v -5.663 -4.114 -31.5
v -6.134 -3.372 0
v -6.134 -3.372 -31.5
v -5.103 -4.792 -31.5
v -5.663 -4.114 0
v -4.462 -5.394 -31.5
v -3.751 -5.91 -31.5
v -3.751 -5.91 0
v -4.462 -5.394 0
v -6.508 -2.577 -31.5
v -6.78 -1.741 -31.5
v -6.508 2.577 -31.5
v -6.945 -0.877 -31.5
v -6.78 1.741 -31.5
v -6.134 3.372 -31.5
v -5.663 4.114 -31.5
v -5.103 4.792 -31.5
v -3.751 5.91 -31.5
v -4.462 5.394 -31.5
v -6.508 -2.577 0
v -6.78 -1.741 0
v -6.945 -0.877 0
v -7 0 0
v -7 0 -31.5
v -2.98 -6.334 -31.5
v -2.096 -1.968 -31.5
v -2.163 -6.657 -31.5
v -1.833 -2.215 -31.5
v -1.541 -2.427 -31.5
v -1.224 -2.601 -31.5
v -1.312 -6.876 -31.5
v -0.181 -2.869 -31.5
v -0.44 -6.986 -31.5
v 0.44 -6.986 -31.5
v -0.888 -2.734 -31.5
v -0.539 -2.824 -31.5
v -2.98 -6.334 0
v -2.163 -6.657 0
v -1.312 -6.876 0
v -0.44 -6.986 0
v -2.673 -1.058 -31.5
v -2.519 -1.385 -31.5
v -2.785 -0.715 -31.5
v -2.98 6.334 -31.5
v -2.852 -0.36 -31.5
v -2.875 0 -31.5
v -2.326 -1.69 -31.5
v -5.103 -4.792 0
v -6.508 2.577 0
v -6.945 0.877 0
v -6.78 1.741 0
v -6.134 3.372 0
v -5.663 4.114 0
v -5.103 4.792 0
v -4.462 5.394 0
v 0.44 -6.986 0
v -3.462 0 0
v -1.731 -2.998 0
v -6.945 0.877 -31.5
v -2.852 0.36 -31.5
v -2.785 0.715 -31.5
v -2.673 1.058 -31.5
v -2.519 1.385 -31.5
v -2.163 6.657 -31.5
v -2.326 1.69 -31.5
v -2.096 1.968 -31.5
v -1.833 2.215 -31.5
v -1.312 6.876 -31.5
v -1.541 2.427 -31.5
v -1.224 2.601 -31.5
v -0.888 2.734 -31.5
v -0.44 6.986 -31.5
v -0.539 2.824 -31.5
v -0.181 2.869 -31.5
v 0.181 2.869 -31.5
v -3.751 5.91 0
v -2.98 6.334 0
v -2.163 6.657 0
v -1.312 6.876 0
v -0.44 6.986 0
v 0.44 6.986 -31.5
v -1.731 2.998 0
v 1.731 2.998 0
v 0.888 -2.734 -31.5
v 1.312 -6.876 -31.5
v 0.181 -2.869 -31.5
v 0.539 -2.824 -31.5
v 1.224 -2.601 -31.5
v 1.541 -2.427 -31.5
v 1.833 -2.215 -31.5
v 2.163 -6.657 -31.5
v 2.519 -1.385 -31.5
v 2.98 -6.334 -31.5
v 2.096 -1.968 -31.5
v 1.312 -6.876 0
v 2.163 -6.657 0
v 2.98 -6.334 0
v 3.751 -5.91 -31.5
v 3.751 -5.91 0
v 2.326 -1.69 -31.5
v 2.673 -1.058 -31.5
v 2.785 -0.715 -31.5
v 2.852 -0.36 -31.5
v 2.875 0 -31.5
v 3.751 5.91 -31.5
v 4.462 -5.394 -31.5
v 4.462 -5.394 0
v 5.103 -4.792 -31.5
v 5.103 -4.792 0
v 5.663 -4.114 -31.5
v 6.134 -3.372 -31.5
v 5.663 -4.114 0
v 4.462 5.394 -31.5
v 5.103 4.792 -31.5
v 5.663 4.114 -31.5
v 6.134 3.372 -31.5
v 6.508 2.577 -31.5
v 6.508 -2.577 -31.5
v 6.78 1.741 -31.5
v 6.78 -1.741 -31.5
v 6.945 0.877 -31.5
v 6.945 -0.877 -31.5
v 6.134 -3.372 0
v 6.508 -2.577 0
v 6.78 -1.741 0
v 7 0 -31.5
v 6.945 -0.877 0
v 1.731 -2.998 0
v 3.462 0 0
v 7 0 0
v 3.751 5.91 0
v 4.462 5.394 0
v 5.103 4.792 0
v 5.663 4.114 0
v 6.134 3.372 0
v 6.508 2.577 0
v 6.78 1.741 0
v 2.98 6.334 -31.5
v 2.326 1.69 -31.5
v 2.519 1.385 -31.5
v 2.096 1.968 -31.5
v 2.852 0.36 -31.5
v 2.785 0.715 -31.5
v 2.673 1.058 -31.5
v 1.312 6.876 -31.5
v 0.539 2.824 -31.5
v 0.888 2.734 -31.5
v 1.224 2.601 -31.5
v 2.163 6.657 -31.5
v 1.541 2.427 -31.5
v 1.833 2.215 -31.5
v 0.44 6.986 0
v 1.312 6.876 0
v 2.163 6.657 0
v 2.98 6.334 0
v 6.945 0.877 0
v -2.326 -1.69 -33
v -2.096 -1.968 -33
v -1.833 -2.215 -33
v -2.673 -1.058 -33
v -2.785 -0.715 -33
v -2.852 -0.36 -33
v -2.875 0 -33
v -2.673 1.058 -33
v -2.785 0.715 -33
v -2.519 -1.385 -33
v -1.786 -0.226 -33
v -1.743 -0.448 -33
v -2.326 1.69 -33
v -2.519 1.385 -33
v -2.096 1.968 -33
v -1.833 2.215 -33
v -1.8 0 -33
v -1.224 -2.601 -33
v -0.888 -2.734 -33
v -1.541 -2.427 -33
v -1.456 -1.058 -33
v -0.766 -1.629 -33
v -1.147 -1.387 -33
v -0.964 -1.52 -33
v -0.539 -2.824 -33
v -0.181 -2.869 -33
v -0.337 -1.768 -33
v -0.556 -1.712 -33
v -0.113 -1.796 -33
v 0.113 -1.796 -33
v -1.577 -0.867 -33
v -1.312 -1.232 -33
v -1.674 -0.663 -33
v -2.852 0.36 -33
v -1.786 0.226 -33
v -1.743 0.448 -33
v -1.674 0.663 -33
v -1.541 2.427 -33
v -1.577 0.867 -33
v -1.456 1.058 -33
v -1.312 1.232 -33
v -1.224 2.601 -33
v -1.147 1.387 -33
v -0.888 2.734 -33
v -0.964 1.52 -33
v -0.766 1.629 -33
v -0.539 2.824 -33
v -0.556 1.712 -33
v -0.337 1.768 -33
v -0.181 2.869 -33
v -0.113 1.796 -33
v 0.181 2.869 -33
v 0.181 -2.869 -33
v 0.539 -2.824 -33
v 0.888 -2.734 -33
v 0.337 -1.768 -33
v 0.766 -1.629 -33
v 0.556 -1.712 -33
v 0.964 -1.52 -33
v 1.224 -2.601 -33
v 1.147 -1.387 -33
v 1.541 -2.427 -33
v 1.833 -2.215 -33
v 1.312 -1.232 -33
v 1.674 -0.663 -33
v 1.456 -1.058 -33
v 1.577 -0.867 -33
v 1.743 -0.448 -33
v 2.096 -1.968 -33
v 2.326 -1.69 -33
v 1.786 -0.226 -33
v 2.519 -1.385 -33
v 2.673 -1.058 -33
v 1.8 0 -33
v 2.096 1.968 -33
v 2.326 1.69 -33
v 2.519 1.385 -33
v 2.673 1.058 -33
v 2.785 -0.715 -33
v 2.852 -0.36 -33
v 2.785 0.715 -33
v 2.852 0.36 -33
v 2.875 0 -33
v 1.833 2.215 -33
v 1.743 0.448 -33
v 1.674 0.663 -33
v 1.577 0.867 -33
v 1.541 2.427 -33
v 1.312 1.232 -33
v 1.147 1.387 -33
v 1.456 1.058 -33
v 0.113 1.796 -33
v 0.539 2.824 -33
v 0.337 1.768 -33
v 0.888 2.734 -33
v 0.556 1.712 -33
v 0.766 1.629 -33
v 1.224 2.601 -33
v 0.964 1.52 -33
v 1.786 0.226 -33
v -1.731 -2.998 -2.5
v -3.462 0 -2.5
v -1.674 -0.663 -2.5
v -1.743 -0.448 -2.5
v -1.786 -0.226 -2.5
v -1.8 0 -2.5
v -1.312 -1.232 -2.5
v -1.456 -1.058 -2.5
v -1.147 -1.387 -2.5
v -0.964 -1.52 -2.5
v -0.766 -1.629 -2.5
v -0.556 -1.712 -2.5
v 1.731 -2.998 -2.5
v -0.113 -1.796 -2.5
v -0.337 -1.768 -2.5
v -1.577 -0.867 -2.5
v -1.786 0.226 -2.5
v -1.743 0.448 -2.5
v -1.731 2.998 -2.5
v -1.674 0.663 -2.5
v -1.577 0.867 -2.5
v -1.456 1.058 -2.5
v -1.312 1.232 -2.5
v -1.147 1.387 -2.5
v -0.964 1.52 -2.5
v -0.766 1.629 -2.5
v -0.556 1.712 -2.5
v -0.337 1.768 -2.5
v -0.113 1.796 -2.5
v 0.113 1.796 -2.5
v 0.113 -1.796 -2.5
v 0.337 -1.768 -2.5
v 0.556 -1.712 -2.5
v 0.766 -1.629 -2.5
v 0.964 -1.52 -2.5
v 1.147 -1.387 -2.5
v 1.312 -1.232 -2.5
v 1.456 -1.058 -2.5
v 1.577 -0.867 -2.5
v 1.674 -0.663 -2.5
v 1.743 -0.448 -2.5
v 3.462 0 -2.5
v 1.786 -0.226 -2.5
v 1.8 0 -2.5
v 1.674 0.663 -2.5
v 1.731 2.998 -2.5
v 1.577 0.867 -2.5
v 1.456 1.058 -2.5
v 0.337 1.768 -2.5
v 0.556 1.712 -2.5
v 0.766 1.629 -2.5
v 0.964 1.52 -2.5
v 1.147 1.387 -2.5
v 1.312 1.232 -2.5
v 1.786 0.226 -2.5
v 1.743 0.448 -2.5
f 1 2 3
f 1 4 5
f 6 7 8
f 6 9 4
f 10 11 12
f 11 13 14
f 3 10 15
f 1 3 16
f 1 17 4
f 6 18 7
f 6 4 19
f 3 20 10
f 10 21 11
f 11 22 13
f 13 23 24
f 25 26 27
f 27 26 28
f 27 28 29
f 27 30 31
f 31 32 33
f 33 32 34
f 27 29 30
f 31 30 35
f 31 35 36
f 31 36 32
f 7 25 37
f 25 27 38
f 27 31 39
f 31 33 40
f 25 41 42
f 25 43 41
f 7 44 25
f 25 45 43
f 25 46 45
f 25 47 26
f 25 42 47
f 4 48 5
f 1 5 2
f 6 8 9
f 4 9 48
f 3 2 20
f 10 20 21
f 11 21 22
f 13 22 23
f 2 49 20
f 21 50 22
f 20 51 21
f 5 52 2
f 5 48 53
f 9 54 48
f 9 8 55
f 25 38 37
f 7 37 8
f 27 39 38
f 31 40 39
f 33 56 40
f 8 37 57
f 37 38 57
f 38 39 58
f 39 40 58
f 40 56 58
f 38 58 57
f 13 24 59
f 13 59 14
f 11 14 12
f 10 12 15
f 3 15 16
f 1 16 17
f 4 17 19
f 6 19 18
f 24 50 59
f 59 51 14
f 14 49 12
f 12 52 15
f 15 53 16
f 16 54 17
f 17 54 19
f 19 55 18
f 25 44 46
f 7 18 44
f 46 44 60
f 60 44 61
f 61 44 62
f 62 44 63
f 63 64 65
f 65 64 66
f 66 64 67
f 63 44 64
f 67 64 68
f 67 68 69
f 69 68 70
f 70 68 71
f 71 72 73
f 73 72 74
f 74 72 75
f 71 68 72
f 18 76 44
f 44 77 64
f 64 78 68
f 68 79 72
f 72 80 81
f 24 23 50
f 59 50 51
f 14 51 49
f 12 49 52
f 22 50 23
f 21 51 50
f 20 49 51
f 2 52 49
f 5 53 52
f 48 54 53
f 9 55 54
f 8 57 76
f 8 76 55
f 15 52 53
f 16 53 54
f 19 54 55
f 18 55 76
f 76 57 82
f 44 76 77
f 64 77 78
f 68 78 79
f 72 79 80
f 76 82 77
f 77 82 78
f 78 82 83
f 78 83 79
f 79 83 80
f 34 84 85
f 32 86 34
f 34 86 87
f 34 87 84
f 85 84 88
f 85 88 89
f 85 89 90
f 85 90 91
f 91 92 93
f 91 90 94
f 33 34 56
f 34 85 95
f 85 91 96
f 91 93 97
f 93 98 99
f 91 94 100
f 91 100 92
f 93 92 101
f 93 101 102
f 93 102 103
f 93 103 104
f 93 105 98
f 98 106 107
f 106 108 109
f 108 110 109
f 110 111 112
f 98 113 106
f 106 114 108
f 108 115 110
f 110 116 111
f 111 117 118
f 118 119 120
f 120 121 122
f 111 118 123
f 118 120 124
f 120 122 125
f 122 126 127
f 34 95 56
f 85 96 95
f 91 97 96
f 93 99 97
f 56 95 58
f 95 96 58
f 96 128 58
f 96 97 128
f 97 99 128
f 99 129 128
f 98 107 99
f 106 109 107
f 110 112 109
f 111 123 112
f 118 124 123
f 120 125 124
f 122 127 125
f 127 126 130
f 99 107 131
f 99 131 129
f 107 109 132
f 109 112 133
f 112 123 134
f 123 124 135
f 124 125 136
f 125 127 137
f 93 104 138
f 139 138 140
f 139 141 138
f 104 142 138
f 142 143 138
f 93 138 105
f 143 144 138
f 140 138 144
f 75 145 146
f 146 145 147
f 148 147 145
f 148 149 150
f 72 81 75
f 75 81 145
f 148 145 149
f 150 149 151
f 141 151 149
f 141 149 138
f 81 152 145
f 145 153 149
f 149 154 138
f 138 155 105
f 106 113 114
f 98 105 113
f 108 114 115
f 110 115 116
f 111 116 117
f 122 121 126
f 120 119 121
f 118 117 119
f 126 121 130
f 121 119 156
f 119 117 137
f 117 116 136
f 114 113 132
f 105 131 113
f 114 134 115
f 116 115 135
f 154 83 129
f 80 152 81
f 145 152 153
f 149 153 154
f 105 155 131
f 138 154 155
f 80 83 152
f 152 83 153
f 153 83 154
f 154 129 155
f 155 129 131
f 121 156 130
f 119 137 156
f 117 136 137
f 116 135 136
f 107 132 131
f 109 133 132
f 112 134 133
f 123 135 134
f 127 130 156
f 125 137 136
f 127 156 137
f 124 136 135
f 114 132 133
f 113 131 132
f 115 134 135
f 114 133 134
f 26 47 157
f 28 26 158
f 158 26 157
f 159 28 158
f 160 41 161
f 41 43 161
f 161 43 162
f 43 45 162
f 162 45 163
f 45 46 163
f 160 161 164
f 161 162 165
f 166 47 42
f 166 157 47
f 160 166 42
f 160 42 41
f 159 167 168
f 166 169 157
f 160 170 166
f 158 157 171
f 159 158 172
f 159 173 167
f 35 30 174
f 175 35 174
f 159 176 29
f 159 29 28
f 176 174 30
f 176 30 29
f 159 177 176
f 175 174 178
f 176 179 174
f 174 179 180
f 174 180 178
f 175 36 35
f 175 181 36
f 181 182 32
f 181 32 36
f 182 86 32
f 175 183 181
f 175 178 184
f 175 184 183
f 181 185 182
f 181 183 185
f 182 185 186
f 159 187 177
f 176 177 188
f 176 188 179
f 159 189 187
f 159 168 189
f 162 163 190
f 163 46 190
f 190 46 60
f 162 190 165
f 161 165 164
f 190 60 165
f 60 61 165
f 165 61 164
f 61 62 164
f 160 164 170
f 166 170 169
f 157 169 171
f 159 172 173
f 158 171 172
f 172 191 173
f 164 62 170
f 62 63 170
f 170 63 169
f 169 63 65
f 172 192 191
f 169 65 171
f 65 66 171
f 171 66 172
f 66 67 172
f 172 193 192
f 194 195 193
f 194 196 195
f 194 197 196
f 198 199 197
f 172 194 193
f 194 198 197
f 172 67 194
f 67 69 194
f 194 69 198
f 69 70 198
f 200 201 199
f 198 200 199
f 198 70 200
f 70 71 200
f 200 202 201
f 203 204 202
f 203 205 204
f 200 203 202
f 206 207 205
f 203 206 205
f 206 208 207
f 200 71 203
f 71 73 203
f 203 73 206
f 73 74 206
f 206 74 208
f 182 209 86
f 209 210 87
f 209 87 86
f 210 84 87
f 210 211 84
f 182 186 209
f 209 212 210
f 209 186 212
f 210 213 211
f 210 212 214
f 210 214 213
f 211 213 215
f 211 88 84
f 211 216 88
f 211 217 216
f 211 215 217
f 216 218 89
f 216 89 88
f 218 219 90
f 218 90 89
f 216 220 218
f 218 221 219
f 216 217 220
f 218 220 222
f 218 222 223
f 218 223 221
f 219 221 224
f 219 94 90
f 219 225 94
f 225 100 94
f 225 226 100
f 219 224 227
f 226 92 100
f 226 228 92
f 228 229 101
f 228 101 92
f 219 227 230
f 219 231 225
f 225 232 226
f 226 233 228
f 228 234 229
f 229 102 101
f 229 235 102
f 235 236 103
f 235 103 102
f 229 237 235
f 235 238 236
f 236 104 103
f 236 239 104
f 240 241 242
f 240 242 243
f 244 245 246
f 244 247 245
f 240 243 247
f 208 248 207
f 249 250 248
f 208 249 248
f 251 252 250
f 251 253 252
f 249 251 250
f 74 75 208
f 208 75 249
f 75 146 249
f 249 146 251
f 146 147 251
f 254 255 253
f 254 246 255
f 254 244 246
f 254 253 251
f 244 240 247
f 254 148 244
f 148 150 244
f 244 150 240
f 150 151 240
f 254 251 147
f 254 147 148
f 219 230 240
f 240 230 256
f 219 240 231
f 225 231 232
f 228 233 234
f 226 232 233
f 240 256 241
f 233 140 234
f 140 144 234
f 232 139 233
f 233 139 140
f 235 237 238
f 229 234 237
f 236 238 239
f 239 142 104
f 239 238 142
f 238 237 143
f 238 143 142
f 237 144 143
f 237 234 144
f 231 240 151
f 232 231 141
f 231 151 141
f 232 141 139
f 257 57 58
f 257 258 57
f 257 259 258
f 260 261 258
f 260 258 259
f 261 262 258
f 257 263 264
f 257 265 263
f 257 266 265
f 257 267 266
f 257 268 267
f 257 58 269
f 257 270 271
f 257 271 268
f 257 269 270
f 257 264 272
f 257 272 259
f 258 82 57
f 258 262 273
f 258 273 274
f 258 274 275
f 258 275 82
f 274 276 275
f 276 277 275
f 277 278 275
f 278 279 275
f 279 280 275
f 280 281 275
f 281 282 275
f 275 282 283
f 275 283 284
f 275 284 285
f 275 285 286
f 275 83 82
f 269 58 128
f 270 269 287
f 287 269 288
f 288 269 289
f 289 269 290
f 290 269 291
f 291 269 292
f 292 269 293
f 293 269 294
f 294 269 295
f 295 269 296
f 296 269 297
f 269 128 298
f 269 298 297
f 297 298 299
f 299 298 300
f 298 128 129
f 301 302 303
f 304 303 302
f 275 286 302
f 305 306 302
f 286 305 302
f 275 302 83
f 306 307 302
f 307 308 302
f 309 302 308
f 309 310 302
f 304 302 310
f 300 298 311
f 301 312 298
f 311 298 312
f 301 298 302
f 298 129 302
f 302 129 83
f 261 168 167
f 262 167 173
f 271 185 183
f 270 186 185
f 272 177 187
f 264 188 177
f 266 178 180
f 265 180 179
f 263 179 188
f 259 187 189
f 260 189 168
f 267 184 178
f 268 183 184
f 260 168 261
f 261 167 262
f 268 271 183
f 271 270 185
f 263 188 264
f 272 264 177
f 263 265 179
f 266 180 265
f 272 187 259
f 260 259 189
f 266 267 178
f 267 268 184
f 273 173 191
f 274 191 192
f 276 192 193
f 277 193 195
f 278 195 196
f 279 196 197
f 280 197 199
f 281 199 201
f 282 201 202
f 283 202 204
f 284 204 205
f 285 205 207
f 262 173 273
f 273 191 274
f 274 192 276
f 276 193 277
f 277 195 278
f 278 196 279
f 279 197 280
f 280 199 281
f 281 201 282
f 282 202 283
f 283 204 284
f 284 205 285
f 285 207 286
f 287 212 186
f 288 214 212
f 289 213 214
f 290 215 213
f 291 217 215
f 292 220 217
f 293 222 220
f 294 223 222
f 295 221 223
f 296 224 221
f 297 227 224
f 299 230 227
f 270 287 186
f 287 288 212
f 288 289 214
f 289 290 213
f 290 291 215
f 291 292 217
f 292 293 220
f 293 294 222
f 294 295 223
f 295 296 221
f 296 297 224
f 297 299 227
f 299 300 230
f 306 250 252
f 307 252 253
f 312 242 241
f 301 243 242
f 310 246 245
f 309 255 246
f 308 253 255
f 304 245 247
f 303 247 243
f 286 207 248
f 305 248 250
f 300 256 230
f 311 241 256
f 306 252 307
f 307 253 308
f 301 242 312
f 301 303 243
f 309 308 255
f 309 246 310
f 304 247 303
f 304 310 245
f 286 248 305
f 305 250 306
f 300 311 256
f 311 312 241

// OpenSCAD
$fn = 50;


difference() {
	union() {
		translate(v = [0, 0, -31.5000000000]) {
			cylinder(h = 31.5000000000, r = 7.0000000000);
		}
		#translate(v = [0, 0, -33.0000000000]) {
			cylinder(h = 33, r = 2.8750000000);
		}
	}
	union() {
		translate(v = [0, 0, 0]) {
			rotate(a = [0, 0, 0]) {
				difference() {
					union() {
						translate(v = [0, 0, -2.5000000000]) {
							linear_extrude(height = 2.5000000000) {
								polygon(points = [[3.4620000000, 0.0000000000], [1.7310000000, 2.9981799479], [-1.7310000000, 2.9981799479], [-3.4620000000, 0.0000000000], [-1.7310000000, -2.9981799479], [1.7310000000, -2.9981799479]]);
							}
						}
					}
					union();
				}
			}
		}
		#translate(v = [0, 0, -100.0000000000]) {
			cylinder(h = 200, r = 1.8000000000);
		}
	}
}
